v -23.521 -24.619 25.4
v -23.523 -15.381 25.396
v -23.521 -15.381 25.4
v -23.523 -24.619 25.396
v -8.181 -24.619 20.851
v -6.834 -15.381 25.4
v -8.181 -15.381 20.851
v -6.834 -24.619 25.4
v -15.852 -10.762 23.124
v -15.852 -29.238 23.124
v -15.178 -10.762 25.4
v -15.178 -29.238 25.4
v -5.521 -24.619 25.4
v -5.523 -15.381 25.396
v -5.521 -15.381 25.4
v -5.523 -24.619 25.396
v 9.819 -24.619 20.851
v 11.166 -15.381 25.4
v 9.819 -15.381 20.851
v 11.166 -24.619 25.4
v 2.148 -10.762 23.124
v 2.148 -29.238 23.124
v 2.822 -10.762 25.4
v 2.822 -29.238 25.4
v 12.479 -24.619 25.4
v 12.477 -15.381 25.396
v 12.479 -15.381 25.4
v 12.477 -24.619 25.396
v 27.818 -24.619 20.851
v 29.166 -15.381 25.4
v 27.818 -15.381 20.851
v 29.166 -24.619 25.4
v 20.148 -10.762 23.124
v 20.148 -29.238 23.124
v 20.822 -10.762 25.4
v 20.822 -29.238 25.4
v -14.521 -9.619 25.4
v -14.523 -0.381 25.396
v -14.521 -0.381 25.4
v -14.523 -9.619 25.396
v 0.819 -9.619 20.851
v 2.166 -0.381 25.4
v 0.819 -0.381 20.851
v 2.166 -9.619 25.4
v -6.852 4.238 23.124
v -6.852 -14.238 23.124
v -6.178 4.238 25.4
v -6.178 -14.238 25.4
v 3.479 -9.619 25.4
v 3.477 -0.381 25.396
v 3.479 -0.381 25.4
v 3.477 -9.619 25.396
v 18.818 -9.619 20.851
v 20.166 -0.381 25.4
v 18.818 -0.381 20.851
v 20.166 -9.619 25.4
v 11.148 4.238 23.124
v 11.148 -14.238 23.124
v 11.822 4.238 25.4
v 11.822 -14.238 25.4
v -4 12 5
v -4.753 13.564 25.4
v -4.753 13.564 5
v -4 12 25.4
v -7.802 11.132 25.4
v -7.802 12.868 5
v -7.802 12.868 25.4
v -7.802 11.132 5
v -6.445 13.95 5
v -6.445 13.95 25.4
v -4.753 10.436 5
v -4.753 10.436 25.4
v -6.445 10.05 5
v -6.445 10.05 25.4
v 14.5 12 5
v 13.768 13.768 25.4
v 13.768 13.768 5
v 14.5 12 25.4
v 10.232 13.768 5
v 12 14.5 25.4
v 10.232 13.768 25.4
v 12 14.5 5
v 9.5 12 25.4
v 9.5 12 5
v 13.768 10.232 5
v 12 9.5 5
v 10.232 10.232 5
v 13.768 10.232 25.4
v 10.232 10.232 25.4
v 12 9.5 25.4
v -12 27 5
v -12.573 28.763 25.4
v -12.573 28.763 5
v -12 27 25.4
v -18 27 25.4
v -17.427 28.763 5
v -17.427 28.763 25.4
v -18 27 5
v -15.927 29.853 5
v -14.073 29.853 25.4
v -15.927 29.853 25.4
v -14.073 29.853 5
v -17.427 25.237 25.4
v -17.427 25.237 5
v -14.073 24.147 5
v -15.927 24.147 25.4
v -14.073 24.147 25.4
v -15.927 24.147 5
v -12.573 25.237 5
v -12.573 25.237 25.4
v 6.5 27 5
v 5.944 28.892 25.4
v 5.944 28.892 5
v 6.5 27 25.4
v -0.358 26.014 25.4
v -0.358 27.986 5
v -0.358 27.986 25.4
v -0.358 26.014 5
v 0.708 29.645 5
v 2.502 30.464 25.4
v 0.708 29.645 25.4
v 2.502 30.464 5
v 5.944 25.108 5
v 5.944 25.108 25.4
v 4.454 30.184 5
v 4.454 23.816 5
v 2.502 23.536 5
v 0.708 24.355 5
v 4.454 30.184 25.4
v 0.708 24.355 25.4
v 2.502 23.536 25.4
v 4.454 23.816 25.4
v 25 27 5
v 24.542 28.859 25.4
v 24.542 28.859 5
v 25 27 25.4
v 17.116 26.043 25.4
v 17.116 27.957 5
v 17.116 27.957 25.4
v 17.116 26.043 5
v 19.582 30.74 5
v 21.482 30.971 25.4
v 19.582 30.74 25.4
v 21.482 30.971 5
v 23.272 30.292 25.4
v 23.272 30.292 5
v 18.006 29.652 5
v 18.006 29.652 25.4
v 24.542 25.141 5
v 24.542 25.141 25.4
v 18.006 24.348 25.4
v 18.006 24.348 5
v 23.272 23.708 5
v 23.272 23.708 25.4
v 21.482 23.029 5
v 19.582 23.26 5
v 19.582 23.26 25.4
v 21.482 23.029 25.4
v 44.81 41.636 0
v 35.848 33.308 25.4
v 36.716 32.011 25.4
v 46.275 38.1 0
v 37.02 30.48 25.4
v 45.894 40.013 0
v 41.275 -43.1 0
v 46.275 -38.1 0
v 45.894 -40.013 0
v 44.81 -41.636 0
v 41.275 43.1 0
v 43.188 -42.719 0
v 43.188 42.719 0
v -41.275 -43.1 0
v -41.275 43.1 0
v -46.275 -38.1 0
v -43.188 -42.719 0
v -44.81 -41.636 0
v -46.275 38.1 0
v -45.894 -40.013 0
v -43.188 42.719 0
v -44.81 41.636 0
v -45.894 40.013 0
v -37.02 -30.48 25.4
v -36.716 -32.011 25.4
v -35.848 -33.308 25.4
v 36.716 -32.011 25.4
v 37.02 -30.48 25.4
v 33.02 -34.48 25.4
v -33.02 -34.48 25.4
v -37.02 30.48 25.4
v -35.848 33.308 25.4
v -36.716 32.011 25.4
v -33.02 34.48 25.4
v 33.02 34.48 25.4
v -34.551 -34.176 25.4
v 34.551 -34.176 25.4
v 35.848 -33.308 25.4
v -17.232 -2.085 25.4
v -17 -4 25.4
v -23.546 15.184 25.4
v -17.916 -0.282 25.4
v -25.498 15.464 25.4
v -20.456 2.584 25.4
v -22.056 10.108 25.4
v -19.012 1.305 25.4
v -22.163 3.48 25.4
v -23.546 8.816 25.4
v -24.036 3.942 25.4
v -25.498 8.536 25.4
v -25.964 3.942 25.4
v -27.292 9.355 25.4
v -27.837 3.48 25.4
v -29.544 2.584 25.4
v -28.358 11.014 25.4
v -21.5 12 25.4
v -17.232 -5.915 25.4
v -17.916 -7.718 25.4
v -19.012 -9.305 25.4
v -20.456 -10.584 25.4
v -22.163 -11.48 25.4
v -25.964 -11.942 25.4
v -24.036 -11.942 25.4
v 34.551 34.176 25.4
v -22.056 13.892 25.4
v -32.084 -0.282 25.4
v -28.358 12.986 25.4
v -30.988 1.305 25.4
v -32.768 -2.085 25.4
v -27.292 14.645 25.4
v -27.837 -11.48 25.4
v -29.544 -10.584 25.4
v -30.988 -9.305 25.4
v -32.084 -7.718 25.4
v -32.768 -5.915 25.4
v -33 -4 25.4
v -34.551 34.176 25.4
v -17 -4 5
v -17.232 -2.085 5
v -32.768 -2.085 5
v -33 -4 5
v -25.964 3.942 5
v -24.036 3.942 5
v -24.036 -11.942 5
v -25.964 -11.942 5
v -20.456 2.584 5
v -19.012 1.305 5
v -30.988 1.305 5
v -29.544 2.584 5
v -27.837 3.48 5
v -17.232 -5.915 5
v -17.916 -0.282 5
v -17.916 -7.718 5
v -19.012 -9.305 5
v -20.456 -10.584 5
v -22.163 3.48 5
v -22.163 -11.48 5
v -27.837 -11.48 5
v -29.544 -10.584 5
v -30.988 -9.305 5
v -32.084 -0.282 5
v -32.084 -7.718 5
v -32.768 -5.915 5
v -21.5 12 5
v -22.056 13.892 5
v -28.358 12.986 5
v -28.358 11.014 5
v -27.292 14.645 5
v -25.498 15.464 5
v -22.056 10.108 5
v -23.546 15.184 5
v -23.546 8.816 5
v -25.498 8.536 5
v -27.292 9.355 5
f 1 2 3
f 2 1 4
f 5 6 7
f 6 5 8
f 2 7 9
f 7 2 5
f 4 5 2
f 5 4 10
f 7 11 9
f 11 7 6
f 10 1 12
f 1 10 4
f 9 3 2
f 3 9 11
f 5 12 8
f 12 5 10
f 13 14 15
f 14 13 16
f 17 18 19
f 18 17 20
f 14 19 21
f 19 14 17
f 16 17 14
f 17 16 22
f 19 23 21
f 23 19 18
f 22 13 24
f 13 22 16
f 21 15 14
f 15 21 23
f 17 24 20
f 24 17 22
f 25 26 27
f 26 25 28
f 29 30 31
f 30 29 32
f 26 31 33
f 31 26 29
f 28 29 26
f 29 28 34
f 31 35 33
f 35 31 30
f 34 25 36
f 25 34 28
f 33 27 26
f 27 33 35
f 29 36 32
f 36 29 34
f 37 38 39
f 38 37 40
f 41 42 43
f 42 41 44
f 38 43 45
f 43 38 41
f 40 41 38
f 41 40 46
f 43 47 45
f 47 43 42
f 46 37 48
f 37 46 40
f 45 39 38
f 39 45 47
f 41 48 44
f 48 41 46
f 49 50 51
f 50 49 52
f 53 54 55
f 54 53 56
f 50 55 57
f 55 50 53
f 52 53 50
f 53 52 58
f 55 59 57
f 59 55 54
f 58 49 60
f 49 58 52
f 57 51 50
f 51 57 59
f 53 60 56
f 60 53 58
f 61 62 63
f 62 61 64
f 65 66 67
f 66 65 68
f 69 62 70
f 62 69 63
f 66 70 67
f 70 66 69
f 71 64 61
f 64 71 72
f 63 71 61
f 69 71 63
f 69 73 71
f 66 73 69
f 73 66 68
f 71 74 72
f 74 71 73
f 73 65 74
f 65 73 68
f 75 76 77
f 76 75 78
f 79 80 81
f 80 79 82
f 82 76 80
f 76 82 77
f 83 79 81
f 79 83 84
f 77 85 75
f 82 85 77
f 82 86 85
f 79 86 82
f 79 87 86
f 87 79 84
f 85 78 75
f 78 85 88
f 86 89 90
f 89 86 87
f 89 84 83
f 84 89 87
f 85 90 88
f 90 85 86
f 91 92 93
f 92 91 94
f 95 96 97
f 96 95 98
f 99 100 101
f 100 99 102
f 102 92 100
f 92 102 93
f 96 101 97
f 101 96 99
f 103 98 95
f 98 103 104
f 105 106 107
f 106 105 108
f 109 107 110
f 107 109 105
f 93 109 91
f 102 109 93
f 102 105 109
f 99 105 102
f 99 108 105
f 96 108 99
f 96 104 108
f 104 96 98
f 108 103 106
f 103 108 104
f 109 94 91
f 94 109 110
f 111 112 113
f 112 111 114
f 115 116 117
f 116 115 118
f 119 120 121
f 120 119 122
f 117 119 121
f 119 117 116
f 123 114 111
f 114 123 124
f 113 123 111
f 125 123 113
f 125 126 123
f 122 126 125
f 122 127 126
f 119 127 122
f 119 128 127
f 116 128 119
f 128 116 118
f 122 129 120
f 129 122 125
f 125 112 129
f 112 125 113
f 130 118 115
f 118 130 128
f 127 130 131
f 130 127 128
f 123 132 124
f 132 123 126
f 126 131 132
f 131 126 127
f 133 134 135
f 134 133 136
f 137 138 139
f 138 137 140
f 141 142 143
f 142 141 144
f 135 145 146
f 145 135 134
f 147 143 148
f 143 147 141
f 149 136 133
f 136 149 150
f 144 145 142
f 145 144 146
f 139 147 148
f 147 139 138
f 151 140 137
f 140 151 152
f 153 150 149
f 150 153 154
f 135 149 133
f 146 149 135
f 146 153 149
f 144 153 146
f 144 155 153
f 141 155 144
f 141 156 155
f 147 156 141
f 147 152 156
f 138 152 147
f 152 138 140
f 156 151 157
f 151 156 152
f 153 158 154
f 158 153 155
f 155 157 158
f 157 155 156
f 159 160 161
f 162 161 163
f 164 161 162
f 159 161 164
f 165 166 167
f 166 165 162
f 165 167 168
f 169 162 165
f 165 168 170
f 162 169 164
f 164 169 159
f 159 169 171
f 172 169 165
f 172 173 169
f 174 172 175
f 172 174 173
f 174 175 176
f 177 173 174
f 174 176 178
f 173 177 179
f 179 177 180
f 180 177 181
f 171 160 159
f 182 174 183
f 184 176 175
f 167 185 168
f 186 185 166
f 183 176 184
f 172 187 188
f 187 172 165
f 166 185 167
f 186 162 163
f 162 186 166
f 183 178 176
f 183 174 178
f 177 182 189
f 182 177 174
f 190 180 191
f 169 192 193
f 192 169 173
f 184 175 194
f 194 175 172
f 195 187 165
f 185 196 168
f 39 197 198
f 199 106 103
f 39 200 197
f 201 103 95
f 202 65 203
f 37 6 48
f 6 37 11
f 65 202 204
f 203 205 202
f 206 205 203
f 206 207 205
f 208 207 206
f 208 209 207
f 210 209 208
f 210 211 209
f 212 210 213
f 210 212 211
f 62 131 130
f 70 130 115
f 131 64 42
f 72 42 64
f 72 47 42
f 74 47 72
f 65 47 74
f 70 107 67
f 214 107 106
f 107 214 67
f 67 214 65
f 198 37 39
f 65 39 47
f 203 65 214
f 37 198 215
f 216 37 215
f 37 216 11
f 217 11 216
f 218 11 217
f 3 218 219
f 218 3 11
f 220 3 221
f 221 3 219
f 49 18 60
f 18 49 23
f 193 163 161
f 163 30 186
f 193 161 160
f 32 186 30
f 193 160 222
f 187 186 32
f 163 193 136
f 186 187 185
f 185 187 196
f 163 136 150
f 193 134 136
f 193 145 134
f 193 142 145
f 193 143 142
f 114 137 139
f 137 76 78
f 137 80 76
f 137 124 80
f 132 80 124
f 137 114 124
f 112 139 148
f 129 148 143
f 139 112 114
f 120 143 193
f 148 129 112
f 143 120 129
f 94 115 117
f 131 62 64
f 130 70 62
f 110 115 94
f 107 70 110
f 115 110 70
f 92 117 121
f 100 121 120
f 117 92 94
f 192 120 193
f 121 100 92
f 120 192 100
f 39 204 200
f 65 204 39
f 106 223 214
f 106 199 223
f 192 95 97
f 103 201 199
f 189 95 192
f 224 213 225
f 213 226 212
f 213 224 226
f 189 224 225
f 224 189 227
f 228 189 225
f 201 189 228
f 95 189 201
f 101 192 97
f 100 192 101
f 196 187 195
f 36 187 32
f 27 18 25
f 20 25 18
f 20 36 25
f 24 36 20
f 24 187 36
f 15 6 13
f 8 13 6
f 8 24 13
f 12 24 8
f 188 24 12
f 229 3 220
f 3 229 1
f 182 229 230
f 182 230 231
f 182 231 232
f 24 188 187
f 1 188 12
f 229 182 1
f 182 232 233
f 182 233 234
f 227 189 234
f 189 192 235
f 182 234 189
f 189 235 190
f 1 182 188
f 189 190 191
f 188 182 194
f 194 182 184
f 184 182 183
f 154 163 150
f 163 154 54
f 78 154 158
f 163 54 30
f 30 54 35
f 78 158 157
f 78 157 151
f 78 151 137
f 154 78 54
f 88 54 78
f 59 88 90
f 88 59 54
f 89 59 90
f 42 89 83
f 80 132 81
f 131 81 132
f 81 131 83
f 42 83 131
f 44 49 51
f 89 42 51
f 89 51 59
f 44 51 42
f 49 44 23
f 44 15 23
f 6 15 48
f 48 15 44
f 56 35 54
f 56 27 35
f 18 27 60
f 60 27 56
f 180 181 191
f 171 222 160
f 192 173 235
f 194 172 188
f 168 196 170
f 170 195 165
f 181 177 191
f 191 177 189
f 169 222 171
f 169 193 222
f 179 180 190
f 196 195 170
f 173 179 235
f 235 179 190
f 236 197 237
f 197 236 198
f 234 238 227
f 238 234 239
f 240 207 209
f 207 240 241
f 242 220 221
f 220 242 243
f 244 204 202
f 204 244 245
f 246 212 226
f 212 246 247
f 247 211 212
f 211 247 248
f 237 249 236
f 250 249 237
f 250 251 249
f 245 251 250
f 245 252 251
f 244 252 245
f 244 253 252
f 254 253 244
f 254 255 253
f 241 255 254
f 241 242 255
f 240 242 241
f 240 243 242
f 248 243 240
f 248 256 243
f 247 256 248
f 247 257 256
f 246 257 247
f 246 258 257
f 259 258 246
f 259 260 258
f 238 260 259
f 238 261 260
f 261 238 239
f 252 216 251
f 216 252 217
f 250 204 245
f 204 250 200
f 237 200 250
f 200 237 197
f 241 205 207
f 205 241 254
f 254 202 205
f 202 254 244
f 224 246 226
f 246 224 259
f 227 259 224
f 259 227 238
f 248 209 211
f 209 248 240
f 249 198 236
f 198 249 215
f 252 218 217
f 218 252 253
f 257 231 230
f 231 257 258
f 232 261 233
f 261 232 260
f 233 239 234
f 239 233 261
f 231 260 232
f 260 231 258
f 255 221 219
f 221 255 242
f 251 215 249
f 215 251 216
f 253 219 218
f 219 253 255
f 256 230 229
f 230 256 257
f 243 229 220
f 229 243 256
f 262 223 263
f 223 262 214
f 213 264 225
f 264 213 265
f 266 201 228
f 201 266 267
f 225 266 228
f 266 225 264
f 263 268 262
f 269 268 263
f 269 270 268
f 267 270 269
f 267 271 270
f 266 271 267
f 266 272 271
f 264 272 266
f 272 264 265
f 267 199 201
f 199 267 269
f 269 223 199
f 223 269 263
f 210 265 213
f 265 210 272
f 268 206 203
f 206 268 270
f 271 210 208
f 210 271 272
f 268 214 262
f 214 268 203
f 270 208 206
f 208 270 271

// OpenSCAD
mmpi = 25.4;

height    = 1.00 * mmpi;
top_width = 3.00 * mmpi;
top_depth = 2.50 * mmpi;

bottom_width = 3.25 * mmpi;
bottom_depth = 3.00 * mmpi;

difference() {
linear_extrude( height=height, scale=0.8 )
        minkowski() {
            square( size = [ bottom_width, bottom_depth ], center=true );
            circle( r=5 );
        }
        

die_center_x = -15;
die_center_y = -20;
for ( i = [ 0 : 2 ] ) {
    translate( [ 0+i*18+die_center_x, die_center_y, 26 ] ) {
        rotate( [ 0, 16.5, 0 ] )
            Hexagone( 16, 6 );
    }
}

for ( i = [ 0 : 1 ] ) {
    translate( [ 9+i*18+die_center_x, die_center_y+15, 26 ] ) {
        rotate( [ 0, 16.5, 0 ] )
            Hexagone( 16, 6 );
    }
}


tap_center_x = -15;
tap_center_y =  12;
for ( i = [ 0 : 1 ] ) {
    translate( [ 9+i*18+tap_center_x, tap_center_y, 5 ] ) {
        cylinder( r=(4+i)/2, 100 );
    }
}

for ( i = [ 0 : 2 ] ) {
    translate( [ 0+i*18+tap_center_x, tap_center_y+15, 5 ] ) {
        cylinder( r=(6+i)/2, 100 );
    }
}

translate( [ -25, -4, 5 ] )
    cylinder( r=8, 40 );

translate( [ -25, 12, 5 ] )
    cylinder( r=7.0/2, 40 );
}

// from thing:277727
module Hexagone(cle,h)
{
	angle = 360/6;		// 6 pans
	cote = cle * cot(angle);
	echo(angle, cot(angle), cote);
	echo(acos(.6));

	union()
	{
		rotate([0,0,0])
			cube([cle,cote,h],center=true);
		rotate([0,0,angle])
			cube([cle,cote,h],center=true);
		rotate([0,0,2*angle])
			cube([cle,cote,h],center=true);
	}
}

function cot(x)=1/tan(x);
